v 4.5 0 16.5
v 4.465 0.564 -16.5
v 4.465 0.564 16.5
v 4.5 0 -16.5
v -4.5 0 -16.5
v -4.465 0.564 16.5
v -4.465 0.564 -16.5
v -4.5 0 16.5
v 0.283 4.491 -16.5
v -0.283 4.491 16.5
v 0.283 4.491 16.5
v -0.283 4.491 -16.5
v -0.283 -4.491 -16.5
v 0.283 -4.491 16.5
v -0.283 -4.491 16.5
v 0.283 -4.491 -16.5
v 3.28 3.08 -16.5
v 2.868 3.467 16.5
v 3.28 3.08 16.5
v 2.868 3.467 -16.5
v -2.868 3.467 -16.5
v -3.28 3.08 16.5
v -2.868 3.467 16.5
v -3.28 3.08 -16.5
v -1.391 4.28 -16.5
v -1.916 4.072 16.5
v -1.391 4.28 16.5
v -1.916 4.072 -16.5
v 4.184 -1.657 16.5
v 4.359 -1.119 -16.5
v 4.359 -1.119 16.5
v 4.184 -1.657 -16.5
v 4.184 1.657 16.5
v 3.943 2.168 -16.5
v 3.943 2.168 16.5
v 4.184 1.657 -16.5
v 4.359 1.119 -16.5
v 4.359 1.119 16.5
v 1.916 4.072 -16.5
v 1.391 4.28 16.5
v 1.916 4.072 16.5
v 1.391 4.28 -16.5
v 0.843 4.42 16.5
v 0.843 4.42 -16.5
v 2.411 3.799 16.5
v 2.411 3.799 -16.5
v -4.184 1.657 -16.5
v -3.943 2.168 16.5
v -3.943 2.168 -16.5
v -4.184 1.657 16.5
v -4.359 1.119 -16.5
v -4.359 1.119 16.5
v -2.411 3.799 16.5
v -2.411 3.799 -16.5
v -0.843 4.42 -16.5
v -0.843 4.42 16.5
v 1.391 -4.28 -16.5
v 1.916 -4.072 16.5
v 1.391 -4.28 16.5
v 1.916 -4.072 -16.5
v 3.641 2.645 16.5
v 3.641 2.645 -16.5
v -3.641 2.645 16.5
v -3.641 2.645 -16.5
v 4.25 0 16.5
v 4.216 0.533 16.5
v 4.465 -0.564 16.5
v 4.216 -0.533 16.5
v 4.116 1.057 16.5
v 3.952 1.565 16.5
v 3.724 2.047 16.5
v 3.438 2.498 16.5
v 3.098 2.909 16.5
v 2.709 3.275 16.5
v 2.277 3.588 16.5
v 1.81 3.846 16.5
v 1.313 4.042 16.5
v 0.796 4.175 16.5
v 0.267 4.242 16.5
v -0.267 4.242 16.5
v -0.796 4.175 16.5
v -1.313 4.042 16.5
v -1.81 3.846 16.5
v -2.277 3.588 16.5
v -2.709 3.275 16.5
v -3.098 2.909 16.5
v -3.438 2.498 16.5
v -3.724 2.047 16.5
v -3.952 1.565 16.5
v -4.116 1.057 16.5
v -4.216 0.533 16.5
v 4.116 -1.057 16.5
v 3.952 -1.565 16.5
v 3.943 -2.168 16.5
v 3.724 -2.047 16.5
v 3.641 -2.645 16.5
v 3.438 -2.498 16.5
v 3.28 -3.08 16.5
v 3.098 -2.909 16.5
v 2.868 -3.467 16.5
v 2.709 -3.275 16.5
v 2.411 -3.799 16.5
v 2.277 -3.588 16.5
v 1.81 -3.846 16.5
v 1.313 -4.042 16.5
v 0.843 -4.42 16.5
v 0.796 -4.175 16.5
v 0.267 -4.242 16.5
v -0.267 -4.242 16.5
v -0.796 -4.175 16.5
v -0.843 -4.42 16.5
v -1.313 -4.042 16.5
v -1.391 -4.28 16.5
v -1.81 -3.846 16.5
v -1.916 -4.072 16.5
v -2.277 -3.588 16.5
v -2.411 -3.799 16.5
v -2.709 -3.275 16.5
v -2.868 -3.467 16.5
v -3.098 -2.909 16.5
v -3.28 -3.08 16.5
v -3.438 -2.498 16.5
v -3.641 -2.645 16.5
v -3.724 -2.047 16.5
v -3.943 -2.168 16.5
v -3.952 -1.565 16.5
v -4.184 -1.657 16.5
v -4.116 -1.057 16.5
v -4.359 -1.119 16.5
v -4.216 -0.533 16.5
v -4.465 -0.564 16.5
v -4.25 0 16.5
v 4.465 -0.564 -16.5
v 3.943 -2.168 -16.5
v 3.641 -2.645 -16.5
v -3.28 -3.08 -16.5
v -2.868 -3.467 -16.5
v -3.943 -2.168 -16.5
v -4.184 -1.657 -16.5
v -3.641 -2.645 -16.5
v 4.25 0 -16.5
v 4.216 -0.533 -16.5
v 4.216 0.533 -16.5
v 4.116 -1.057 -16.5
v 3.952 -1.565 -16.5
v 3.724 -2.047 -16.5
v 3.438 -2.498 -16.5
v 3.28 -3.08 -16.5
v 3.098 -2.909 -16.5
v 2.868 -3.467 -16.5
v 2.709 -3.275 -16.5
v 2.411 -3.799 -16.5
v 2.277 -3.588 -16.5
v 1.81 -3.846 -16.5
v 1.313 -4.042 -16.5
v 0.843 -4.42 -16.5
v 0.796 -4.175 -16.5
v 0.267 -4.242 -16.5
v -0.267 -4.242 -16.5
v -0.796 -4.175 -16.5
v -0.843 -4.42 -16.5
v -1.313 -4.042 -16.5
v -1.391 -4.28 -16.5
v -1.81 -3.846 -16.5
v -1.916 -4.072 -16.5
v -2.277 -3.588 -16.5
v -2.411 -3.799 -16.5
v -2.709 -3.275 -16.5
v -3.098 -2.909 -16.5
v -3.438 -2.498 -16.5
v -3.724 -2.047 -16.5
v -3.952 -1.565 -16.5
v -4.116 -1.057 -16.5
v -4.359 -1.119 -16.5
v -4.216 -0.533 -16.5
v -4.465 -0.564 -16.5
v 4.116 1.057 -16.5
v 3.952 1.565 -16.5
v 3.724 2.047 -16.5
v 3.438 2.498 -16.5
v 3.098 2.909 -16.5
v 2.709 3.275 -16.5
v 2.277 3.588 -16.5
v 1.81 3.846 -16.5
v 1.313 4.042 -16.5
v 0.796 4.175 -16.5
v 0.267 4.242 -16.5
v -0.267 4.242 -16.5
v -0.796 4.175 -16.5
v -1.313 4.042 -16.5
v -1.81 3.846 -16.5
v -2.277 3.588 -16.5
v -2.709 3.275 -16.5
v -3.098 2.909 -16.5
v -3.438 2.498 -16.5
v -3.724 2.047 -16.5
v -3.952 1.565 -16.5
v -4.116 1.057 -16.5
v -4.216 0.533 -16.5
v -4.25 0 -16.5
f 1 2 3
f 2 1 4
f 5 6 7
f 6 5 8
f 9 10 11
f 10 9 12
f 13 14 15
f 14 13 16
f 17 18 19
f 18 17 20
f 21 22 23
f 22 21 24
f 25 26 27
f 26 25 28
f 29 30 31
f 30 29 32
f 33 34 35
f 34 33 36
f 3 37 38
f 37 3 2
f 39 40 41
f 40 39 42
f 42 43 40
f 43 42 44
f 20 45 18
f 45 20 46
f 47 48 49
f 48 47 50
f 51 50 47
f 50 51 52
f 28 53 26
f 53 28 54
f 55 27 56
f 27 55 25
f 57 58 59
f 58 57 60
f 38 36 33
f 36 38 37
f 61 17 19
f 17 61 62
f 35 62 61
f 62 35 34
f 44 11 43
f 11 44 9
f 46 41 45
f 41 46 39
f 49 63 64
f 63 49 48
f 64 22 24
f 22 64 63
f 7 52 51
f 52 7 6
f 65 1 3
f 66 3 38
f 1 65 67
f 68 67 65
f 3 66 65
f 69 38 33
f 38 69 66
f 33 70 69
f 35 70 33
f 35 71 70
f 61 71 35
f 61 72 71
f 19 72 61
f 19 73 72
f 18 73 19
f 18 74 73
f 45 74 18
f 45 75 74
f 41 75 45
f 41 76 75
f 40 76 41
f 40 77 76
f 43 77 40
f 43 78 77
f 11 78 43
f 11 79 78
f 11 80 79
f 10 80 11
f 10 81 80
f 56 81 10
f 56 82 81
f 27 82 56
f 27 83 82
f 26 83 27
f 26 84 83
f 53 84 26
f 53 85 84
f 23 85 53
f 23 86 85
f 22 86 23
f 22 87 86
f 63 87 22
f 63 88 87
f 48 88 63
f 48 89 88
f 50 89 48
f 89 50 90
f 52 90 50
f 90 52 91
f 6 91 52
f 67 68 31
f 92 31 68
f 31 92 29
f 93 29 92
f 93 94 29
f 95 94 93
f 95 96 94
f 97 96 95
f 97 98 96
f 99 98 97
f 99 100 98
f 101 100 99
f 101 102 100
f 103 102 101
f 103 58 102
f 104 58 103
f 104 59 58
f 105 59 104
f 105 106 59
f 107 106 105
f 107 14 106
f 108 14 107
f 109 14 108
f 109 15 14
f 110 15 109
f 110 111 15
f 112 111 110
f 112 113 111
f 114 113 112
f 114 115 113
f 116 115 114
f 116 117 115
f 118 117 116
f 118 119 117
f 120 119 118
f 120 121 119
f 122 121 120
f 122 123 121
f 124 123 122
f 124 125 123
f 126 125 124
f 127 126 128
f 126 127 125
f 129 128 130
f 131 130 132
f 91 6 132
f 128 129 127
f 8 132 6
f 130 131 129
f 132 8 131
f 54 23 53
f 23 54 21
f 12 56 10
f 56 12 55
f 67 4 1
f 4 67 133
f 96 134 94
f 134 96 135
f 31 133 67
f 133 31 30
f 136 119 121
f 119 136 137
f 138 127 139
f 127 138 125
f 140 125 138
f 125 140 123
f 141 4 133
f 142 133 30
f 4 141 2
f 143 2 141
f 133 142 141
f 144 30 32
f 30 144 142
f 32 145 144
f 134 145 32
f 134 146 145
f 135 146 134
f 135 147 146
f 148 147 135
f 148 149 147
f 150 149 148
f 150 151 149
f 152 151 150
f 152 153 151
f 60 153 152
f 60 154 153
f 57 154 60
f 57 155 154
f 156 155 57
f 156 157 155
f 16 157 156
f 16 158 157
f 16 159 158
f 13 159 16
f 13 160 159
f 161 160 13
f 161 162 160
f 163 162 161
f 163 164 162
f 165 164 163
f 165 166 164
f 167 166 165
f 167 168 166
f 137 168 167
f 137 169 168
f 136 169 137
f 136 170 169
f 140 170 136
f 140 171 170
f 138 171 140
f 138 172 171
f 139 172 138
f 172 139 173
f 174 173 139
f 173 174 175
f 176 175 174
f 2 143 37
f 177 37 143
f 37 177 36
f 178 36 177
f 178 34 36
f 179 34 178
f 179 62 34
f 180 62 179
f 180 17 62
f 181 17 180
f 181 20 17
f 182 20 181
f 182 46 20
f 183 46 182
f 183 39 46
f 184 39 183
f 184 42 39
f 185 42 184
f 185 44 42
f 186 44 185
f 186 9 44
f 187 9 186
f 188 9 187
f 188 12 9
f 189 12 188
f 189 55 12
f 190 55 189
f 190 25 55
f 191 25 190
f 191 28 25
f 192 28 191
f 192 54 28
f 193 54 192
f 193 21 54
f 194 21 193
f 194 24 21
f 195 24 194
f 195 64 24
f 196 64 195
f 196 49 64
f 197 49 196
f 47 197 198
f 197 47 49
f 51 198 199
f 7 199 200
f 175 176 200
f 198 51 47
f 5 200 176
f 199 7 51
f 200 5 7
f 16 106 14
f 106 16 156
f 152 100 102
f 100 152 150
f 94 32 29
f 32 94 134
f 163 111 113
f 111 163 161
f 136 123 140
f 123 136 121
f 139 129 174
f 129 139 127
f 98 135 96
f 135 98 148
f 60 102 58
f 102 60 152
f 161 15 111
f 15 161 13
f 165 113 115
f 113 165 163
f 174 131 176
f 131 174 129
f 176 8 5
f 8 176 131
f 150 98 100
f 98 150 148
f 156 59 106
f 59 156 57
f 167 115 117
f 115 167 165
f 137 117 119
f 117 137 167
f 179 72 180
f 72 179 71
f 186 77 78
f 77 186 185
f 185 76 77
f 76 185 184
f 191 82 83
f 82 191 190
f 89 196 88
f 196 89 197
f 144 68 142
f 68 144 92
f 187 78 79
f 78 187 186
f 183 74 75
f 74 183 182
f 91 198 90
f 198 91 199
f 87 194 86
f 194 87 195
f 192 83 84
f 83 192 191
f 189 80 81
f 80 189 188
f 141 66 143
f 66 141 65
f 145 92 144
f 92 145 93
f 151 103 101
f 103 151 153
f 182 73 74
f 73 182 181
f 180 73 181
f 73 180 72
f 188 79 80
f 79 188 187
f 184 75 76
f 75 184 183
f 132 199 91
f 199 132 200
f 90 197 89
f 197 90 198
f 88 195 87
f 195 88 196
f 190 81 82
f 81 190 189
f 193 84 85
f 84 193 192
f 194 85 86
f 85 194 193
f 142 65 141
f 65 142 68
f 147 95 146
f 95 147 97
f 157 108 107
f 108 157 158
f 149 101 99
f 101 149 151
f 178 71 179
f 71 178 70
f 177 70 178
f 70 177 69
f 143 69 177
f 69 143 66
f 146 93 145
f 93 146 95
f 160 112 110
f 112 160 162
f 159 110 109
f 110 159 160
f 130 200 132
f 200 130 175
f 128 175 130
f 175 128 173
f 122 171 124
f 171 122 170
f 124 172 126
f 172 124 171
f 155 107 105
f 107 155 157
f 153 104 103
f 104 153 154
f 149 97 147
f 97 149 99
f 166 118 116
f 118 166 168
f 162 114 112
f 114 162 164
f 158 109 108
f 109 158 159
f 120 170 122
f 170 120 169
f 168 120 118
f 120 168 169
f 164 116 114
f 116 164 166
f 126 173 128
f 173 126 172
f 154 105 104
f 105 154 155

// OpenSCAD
$fn = 50;


difference() {
	union() {
		translate(v = [0, 0, -16.5000000000]) {
			cylinder(h = 33, r = 4.5000000000);
		}
	}
	union() {
		translate(v = [0, 0, -100.0000000000]) {
			cylinder(h = 200, r = 4.2500000000);
		}
	}
}
